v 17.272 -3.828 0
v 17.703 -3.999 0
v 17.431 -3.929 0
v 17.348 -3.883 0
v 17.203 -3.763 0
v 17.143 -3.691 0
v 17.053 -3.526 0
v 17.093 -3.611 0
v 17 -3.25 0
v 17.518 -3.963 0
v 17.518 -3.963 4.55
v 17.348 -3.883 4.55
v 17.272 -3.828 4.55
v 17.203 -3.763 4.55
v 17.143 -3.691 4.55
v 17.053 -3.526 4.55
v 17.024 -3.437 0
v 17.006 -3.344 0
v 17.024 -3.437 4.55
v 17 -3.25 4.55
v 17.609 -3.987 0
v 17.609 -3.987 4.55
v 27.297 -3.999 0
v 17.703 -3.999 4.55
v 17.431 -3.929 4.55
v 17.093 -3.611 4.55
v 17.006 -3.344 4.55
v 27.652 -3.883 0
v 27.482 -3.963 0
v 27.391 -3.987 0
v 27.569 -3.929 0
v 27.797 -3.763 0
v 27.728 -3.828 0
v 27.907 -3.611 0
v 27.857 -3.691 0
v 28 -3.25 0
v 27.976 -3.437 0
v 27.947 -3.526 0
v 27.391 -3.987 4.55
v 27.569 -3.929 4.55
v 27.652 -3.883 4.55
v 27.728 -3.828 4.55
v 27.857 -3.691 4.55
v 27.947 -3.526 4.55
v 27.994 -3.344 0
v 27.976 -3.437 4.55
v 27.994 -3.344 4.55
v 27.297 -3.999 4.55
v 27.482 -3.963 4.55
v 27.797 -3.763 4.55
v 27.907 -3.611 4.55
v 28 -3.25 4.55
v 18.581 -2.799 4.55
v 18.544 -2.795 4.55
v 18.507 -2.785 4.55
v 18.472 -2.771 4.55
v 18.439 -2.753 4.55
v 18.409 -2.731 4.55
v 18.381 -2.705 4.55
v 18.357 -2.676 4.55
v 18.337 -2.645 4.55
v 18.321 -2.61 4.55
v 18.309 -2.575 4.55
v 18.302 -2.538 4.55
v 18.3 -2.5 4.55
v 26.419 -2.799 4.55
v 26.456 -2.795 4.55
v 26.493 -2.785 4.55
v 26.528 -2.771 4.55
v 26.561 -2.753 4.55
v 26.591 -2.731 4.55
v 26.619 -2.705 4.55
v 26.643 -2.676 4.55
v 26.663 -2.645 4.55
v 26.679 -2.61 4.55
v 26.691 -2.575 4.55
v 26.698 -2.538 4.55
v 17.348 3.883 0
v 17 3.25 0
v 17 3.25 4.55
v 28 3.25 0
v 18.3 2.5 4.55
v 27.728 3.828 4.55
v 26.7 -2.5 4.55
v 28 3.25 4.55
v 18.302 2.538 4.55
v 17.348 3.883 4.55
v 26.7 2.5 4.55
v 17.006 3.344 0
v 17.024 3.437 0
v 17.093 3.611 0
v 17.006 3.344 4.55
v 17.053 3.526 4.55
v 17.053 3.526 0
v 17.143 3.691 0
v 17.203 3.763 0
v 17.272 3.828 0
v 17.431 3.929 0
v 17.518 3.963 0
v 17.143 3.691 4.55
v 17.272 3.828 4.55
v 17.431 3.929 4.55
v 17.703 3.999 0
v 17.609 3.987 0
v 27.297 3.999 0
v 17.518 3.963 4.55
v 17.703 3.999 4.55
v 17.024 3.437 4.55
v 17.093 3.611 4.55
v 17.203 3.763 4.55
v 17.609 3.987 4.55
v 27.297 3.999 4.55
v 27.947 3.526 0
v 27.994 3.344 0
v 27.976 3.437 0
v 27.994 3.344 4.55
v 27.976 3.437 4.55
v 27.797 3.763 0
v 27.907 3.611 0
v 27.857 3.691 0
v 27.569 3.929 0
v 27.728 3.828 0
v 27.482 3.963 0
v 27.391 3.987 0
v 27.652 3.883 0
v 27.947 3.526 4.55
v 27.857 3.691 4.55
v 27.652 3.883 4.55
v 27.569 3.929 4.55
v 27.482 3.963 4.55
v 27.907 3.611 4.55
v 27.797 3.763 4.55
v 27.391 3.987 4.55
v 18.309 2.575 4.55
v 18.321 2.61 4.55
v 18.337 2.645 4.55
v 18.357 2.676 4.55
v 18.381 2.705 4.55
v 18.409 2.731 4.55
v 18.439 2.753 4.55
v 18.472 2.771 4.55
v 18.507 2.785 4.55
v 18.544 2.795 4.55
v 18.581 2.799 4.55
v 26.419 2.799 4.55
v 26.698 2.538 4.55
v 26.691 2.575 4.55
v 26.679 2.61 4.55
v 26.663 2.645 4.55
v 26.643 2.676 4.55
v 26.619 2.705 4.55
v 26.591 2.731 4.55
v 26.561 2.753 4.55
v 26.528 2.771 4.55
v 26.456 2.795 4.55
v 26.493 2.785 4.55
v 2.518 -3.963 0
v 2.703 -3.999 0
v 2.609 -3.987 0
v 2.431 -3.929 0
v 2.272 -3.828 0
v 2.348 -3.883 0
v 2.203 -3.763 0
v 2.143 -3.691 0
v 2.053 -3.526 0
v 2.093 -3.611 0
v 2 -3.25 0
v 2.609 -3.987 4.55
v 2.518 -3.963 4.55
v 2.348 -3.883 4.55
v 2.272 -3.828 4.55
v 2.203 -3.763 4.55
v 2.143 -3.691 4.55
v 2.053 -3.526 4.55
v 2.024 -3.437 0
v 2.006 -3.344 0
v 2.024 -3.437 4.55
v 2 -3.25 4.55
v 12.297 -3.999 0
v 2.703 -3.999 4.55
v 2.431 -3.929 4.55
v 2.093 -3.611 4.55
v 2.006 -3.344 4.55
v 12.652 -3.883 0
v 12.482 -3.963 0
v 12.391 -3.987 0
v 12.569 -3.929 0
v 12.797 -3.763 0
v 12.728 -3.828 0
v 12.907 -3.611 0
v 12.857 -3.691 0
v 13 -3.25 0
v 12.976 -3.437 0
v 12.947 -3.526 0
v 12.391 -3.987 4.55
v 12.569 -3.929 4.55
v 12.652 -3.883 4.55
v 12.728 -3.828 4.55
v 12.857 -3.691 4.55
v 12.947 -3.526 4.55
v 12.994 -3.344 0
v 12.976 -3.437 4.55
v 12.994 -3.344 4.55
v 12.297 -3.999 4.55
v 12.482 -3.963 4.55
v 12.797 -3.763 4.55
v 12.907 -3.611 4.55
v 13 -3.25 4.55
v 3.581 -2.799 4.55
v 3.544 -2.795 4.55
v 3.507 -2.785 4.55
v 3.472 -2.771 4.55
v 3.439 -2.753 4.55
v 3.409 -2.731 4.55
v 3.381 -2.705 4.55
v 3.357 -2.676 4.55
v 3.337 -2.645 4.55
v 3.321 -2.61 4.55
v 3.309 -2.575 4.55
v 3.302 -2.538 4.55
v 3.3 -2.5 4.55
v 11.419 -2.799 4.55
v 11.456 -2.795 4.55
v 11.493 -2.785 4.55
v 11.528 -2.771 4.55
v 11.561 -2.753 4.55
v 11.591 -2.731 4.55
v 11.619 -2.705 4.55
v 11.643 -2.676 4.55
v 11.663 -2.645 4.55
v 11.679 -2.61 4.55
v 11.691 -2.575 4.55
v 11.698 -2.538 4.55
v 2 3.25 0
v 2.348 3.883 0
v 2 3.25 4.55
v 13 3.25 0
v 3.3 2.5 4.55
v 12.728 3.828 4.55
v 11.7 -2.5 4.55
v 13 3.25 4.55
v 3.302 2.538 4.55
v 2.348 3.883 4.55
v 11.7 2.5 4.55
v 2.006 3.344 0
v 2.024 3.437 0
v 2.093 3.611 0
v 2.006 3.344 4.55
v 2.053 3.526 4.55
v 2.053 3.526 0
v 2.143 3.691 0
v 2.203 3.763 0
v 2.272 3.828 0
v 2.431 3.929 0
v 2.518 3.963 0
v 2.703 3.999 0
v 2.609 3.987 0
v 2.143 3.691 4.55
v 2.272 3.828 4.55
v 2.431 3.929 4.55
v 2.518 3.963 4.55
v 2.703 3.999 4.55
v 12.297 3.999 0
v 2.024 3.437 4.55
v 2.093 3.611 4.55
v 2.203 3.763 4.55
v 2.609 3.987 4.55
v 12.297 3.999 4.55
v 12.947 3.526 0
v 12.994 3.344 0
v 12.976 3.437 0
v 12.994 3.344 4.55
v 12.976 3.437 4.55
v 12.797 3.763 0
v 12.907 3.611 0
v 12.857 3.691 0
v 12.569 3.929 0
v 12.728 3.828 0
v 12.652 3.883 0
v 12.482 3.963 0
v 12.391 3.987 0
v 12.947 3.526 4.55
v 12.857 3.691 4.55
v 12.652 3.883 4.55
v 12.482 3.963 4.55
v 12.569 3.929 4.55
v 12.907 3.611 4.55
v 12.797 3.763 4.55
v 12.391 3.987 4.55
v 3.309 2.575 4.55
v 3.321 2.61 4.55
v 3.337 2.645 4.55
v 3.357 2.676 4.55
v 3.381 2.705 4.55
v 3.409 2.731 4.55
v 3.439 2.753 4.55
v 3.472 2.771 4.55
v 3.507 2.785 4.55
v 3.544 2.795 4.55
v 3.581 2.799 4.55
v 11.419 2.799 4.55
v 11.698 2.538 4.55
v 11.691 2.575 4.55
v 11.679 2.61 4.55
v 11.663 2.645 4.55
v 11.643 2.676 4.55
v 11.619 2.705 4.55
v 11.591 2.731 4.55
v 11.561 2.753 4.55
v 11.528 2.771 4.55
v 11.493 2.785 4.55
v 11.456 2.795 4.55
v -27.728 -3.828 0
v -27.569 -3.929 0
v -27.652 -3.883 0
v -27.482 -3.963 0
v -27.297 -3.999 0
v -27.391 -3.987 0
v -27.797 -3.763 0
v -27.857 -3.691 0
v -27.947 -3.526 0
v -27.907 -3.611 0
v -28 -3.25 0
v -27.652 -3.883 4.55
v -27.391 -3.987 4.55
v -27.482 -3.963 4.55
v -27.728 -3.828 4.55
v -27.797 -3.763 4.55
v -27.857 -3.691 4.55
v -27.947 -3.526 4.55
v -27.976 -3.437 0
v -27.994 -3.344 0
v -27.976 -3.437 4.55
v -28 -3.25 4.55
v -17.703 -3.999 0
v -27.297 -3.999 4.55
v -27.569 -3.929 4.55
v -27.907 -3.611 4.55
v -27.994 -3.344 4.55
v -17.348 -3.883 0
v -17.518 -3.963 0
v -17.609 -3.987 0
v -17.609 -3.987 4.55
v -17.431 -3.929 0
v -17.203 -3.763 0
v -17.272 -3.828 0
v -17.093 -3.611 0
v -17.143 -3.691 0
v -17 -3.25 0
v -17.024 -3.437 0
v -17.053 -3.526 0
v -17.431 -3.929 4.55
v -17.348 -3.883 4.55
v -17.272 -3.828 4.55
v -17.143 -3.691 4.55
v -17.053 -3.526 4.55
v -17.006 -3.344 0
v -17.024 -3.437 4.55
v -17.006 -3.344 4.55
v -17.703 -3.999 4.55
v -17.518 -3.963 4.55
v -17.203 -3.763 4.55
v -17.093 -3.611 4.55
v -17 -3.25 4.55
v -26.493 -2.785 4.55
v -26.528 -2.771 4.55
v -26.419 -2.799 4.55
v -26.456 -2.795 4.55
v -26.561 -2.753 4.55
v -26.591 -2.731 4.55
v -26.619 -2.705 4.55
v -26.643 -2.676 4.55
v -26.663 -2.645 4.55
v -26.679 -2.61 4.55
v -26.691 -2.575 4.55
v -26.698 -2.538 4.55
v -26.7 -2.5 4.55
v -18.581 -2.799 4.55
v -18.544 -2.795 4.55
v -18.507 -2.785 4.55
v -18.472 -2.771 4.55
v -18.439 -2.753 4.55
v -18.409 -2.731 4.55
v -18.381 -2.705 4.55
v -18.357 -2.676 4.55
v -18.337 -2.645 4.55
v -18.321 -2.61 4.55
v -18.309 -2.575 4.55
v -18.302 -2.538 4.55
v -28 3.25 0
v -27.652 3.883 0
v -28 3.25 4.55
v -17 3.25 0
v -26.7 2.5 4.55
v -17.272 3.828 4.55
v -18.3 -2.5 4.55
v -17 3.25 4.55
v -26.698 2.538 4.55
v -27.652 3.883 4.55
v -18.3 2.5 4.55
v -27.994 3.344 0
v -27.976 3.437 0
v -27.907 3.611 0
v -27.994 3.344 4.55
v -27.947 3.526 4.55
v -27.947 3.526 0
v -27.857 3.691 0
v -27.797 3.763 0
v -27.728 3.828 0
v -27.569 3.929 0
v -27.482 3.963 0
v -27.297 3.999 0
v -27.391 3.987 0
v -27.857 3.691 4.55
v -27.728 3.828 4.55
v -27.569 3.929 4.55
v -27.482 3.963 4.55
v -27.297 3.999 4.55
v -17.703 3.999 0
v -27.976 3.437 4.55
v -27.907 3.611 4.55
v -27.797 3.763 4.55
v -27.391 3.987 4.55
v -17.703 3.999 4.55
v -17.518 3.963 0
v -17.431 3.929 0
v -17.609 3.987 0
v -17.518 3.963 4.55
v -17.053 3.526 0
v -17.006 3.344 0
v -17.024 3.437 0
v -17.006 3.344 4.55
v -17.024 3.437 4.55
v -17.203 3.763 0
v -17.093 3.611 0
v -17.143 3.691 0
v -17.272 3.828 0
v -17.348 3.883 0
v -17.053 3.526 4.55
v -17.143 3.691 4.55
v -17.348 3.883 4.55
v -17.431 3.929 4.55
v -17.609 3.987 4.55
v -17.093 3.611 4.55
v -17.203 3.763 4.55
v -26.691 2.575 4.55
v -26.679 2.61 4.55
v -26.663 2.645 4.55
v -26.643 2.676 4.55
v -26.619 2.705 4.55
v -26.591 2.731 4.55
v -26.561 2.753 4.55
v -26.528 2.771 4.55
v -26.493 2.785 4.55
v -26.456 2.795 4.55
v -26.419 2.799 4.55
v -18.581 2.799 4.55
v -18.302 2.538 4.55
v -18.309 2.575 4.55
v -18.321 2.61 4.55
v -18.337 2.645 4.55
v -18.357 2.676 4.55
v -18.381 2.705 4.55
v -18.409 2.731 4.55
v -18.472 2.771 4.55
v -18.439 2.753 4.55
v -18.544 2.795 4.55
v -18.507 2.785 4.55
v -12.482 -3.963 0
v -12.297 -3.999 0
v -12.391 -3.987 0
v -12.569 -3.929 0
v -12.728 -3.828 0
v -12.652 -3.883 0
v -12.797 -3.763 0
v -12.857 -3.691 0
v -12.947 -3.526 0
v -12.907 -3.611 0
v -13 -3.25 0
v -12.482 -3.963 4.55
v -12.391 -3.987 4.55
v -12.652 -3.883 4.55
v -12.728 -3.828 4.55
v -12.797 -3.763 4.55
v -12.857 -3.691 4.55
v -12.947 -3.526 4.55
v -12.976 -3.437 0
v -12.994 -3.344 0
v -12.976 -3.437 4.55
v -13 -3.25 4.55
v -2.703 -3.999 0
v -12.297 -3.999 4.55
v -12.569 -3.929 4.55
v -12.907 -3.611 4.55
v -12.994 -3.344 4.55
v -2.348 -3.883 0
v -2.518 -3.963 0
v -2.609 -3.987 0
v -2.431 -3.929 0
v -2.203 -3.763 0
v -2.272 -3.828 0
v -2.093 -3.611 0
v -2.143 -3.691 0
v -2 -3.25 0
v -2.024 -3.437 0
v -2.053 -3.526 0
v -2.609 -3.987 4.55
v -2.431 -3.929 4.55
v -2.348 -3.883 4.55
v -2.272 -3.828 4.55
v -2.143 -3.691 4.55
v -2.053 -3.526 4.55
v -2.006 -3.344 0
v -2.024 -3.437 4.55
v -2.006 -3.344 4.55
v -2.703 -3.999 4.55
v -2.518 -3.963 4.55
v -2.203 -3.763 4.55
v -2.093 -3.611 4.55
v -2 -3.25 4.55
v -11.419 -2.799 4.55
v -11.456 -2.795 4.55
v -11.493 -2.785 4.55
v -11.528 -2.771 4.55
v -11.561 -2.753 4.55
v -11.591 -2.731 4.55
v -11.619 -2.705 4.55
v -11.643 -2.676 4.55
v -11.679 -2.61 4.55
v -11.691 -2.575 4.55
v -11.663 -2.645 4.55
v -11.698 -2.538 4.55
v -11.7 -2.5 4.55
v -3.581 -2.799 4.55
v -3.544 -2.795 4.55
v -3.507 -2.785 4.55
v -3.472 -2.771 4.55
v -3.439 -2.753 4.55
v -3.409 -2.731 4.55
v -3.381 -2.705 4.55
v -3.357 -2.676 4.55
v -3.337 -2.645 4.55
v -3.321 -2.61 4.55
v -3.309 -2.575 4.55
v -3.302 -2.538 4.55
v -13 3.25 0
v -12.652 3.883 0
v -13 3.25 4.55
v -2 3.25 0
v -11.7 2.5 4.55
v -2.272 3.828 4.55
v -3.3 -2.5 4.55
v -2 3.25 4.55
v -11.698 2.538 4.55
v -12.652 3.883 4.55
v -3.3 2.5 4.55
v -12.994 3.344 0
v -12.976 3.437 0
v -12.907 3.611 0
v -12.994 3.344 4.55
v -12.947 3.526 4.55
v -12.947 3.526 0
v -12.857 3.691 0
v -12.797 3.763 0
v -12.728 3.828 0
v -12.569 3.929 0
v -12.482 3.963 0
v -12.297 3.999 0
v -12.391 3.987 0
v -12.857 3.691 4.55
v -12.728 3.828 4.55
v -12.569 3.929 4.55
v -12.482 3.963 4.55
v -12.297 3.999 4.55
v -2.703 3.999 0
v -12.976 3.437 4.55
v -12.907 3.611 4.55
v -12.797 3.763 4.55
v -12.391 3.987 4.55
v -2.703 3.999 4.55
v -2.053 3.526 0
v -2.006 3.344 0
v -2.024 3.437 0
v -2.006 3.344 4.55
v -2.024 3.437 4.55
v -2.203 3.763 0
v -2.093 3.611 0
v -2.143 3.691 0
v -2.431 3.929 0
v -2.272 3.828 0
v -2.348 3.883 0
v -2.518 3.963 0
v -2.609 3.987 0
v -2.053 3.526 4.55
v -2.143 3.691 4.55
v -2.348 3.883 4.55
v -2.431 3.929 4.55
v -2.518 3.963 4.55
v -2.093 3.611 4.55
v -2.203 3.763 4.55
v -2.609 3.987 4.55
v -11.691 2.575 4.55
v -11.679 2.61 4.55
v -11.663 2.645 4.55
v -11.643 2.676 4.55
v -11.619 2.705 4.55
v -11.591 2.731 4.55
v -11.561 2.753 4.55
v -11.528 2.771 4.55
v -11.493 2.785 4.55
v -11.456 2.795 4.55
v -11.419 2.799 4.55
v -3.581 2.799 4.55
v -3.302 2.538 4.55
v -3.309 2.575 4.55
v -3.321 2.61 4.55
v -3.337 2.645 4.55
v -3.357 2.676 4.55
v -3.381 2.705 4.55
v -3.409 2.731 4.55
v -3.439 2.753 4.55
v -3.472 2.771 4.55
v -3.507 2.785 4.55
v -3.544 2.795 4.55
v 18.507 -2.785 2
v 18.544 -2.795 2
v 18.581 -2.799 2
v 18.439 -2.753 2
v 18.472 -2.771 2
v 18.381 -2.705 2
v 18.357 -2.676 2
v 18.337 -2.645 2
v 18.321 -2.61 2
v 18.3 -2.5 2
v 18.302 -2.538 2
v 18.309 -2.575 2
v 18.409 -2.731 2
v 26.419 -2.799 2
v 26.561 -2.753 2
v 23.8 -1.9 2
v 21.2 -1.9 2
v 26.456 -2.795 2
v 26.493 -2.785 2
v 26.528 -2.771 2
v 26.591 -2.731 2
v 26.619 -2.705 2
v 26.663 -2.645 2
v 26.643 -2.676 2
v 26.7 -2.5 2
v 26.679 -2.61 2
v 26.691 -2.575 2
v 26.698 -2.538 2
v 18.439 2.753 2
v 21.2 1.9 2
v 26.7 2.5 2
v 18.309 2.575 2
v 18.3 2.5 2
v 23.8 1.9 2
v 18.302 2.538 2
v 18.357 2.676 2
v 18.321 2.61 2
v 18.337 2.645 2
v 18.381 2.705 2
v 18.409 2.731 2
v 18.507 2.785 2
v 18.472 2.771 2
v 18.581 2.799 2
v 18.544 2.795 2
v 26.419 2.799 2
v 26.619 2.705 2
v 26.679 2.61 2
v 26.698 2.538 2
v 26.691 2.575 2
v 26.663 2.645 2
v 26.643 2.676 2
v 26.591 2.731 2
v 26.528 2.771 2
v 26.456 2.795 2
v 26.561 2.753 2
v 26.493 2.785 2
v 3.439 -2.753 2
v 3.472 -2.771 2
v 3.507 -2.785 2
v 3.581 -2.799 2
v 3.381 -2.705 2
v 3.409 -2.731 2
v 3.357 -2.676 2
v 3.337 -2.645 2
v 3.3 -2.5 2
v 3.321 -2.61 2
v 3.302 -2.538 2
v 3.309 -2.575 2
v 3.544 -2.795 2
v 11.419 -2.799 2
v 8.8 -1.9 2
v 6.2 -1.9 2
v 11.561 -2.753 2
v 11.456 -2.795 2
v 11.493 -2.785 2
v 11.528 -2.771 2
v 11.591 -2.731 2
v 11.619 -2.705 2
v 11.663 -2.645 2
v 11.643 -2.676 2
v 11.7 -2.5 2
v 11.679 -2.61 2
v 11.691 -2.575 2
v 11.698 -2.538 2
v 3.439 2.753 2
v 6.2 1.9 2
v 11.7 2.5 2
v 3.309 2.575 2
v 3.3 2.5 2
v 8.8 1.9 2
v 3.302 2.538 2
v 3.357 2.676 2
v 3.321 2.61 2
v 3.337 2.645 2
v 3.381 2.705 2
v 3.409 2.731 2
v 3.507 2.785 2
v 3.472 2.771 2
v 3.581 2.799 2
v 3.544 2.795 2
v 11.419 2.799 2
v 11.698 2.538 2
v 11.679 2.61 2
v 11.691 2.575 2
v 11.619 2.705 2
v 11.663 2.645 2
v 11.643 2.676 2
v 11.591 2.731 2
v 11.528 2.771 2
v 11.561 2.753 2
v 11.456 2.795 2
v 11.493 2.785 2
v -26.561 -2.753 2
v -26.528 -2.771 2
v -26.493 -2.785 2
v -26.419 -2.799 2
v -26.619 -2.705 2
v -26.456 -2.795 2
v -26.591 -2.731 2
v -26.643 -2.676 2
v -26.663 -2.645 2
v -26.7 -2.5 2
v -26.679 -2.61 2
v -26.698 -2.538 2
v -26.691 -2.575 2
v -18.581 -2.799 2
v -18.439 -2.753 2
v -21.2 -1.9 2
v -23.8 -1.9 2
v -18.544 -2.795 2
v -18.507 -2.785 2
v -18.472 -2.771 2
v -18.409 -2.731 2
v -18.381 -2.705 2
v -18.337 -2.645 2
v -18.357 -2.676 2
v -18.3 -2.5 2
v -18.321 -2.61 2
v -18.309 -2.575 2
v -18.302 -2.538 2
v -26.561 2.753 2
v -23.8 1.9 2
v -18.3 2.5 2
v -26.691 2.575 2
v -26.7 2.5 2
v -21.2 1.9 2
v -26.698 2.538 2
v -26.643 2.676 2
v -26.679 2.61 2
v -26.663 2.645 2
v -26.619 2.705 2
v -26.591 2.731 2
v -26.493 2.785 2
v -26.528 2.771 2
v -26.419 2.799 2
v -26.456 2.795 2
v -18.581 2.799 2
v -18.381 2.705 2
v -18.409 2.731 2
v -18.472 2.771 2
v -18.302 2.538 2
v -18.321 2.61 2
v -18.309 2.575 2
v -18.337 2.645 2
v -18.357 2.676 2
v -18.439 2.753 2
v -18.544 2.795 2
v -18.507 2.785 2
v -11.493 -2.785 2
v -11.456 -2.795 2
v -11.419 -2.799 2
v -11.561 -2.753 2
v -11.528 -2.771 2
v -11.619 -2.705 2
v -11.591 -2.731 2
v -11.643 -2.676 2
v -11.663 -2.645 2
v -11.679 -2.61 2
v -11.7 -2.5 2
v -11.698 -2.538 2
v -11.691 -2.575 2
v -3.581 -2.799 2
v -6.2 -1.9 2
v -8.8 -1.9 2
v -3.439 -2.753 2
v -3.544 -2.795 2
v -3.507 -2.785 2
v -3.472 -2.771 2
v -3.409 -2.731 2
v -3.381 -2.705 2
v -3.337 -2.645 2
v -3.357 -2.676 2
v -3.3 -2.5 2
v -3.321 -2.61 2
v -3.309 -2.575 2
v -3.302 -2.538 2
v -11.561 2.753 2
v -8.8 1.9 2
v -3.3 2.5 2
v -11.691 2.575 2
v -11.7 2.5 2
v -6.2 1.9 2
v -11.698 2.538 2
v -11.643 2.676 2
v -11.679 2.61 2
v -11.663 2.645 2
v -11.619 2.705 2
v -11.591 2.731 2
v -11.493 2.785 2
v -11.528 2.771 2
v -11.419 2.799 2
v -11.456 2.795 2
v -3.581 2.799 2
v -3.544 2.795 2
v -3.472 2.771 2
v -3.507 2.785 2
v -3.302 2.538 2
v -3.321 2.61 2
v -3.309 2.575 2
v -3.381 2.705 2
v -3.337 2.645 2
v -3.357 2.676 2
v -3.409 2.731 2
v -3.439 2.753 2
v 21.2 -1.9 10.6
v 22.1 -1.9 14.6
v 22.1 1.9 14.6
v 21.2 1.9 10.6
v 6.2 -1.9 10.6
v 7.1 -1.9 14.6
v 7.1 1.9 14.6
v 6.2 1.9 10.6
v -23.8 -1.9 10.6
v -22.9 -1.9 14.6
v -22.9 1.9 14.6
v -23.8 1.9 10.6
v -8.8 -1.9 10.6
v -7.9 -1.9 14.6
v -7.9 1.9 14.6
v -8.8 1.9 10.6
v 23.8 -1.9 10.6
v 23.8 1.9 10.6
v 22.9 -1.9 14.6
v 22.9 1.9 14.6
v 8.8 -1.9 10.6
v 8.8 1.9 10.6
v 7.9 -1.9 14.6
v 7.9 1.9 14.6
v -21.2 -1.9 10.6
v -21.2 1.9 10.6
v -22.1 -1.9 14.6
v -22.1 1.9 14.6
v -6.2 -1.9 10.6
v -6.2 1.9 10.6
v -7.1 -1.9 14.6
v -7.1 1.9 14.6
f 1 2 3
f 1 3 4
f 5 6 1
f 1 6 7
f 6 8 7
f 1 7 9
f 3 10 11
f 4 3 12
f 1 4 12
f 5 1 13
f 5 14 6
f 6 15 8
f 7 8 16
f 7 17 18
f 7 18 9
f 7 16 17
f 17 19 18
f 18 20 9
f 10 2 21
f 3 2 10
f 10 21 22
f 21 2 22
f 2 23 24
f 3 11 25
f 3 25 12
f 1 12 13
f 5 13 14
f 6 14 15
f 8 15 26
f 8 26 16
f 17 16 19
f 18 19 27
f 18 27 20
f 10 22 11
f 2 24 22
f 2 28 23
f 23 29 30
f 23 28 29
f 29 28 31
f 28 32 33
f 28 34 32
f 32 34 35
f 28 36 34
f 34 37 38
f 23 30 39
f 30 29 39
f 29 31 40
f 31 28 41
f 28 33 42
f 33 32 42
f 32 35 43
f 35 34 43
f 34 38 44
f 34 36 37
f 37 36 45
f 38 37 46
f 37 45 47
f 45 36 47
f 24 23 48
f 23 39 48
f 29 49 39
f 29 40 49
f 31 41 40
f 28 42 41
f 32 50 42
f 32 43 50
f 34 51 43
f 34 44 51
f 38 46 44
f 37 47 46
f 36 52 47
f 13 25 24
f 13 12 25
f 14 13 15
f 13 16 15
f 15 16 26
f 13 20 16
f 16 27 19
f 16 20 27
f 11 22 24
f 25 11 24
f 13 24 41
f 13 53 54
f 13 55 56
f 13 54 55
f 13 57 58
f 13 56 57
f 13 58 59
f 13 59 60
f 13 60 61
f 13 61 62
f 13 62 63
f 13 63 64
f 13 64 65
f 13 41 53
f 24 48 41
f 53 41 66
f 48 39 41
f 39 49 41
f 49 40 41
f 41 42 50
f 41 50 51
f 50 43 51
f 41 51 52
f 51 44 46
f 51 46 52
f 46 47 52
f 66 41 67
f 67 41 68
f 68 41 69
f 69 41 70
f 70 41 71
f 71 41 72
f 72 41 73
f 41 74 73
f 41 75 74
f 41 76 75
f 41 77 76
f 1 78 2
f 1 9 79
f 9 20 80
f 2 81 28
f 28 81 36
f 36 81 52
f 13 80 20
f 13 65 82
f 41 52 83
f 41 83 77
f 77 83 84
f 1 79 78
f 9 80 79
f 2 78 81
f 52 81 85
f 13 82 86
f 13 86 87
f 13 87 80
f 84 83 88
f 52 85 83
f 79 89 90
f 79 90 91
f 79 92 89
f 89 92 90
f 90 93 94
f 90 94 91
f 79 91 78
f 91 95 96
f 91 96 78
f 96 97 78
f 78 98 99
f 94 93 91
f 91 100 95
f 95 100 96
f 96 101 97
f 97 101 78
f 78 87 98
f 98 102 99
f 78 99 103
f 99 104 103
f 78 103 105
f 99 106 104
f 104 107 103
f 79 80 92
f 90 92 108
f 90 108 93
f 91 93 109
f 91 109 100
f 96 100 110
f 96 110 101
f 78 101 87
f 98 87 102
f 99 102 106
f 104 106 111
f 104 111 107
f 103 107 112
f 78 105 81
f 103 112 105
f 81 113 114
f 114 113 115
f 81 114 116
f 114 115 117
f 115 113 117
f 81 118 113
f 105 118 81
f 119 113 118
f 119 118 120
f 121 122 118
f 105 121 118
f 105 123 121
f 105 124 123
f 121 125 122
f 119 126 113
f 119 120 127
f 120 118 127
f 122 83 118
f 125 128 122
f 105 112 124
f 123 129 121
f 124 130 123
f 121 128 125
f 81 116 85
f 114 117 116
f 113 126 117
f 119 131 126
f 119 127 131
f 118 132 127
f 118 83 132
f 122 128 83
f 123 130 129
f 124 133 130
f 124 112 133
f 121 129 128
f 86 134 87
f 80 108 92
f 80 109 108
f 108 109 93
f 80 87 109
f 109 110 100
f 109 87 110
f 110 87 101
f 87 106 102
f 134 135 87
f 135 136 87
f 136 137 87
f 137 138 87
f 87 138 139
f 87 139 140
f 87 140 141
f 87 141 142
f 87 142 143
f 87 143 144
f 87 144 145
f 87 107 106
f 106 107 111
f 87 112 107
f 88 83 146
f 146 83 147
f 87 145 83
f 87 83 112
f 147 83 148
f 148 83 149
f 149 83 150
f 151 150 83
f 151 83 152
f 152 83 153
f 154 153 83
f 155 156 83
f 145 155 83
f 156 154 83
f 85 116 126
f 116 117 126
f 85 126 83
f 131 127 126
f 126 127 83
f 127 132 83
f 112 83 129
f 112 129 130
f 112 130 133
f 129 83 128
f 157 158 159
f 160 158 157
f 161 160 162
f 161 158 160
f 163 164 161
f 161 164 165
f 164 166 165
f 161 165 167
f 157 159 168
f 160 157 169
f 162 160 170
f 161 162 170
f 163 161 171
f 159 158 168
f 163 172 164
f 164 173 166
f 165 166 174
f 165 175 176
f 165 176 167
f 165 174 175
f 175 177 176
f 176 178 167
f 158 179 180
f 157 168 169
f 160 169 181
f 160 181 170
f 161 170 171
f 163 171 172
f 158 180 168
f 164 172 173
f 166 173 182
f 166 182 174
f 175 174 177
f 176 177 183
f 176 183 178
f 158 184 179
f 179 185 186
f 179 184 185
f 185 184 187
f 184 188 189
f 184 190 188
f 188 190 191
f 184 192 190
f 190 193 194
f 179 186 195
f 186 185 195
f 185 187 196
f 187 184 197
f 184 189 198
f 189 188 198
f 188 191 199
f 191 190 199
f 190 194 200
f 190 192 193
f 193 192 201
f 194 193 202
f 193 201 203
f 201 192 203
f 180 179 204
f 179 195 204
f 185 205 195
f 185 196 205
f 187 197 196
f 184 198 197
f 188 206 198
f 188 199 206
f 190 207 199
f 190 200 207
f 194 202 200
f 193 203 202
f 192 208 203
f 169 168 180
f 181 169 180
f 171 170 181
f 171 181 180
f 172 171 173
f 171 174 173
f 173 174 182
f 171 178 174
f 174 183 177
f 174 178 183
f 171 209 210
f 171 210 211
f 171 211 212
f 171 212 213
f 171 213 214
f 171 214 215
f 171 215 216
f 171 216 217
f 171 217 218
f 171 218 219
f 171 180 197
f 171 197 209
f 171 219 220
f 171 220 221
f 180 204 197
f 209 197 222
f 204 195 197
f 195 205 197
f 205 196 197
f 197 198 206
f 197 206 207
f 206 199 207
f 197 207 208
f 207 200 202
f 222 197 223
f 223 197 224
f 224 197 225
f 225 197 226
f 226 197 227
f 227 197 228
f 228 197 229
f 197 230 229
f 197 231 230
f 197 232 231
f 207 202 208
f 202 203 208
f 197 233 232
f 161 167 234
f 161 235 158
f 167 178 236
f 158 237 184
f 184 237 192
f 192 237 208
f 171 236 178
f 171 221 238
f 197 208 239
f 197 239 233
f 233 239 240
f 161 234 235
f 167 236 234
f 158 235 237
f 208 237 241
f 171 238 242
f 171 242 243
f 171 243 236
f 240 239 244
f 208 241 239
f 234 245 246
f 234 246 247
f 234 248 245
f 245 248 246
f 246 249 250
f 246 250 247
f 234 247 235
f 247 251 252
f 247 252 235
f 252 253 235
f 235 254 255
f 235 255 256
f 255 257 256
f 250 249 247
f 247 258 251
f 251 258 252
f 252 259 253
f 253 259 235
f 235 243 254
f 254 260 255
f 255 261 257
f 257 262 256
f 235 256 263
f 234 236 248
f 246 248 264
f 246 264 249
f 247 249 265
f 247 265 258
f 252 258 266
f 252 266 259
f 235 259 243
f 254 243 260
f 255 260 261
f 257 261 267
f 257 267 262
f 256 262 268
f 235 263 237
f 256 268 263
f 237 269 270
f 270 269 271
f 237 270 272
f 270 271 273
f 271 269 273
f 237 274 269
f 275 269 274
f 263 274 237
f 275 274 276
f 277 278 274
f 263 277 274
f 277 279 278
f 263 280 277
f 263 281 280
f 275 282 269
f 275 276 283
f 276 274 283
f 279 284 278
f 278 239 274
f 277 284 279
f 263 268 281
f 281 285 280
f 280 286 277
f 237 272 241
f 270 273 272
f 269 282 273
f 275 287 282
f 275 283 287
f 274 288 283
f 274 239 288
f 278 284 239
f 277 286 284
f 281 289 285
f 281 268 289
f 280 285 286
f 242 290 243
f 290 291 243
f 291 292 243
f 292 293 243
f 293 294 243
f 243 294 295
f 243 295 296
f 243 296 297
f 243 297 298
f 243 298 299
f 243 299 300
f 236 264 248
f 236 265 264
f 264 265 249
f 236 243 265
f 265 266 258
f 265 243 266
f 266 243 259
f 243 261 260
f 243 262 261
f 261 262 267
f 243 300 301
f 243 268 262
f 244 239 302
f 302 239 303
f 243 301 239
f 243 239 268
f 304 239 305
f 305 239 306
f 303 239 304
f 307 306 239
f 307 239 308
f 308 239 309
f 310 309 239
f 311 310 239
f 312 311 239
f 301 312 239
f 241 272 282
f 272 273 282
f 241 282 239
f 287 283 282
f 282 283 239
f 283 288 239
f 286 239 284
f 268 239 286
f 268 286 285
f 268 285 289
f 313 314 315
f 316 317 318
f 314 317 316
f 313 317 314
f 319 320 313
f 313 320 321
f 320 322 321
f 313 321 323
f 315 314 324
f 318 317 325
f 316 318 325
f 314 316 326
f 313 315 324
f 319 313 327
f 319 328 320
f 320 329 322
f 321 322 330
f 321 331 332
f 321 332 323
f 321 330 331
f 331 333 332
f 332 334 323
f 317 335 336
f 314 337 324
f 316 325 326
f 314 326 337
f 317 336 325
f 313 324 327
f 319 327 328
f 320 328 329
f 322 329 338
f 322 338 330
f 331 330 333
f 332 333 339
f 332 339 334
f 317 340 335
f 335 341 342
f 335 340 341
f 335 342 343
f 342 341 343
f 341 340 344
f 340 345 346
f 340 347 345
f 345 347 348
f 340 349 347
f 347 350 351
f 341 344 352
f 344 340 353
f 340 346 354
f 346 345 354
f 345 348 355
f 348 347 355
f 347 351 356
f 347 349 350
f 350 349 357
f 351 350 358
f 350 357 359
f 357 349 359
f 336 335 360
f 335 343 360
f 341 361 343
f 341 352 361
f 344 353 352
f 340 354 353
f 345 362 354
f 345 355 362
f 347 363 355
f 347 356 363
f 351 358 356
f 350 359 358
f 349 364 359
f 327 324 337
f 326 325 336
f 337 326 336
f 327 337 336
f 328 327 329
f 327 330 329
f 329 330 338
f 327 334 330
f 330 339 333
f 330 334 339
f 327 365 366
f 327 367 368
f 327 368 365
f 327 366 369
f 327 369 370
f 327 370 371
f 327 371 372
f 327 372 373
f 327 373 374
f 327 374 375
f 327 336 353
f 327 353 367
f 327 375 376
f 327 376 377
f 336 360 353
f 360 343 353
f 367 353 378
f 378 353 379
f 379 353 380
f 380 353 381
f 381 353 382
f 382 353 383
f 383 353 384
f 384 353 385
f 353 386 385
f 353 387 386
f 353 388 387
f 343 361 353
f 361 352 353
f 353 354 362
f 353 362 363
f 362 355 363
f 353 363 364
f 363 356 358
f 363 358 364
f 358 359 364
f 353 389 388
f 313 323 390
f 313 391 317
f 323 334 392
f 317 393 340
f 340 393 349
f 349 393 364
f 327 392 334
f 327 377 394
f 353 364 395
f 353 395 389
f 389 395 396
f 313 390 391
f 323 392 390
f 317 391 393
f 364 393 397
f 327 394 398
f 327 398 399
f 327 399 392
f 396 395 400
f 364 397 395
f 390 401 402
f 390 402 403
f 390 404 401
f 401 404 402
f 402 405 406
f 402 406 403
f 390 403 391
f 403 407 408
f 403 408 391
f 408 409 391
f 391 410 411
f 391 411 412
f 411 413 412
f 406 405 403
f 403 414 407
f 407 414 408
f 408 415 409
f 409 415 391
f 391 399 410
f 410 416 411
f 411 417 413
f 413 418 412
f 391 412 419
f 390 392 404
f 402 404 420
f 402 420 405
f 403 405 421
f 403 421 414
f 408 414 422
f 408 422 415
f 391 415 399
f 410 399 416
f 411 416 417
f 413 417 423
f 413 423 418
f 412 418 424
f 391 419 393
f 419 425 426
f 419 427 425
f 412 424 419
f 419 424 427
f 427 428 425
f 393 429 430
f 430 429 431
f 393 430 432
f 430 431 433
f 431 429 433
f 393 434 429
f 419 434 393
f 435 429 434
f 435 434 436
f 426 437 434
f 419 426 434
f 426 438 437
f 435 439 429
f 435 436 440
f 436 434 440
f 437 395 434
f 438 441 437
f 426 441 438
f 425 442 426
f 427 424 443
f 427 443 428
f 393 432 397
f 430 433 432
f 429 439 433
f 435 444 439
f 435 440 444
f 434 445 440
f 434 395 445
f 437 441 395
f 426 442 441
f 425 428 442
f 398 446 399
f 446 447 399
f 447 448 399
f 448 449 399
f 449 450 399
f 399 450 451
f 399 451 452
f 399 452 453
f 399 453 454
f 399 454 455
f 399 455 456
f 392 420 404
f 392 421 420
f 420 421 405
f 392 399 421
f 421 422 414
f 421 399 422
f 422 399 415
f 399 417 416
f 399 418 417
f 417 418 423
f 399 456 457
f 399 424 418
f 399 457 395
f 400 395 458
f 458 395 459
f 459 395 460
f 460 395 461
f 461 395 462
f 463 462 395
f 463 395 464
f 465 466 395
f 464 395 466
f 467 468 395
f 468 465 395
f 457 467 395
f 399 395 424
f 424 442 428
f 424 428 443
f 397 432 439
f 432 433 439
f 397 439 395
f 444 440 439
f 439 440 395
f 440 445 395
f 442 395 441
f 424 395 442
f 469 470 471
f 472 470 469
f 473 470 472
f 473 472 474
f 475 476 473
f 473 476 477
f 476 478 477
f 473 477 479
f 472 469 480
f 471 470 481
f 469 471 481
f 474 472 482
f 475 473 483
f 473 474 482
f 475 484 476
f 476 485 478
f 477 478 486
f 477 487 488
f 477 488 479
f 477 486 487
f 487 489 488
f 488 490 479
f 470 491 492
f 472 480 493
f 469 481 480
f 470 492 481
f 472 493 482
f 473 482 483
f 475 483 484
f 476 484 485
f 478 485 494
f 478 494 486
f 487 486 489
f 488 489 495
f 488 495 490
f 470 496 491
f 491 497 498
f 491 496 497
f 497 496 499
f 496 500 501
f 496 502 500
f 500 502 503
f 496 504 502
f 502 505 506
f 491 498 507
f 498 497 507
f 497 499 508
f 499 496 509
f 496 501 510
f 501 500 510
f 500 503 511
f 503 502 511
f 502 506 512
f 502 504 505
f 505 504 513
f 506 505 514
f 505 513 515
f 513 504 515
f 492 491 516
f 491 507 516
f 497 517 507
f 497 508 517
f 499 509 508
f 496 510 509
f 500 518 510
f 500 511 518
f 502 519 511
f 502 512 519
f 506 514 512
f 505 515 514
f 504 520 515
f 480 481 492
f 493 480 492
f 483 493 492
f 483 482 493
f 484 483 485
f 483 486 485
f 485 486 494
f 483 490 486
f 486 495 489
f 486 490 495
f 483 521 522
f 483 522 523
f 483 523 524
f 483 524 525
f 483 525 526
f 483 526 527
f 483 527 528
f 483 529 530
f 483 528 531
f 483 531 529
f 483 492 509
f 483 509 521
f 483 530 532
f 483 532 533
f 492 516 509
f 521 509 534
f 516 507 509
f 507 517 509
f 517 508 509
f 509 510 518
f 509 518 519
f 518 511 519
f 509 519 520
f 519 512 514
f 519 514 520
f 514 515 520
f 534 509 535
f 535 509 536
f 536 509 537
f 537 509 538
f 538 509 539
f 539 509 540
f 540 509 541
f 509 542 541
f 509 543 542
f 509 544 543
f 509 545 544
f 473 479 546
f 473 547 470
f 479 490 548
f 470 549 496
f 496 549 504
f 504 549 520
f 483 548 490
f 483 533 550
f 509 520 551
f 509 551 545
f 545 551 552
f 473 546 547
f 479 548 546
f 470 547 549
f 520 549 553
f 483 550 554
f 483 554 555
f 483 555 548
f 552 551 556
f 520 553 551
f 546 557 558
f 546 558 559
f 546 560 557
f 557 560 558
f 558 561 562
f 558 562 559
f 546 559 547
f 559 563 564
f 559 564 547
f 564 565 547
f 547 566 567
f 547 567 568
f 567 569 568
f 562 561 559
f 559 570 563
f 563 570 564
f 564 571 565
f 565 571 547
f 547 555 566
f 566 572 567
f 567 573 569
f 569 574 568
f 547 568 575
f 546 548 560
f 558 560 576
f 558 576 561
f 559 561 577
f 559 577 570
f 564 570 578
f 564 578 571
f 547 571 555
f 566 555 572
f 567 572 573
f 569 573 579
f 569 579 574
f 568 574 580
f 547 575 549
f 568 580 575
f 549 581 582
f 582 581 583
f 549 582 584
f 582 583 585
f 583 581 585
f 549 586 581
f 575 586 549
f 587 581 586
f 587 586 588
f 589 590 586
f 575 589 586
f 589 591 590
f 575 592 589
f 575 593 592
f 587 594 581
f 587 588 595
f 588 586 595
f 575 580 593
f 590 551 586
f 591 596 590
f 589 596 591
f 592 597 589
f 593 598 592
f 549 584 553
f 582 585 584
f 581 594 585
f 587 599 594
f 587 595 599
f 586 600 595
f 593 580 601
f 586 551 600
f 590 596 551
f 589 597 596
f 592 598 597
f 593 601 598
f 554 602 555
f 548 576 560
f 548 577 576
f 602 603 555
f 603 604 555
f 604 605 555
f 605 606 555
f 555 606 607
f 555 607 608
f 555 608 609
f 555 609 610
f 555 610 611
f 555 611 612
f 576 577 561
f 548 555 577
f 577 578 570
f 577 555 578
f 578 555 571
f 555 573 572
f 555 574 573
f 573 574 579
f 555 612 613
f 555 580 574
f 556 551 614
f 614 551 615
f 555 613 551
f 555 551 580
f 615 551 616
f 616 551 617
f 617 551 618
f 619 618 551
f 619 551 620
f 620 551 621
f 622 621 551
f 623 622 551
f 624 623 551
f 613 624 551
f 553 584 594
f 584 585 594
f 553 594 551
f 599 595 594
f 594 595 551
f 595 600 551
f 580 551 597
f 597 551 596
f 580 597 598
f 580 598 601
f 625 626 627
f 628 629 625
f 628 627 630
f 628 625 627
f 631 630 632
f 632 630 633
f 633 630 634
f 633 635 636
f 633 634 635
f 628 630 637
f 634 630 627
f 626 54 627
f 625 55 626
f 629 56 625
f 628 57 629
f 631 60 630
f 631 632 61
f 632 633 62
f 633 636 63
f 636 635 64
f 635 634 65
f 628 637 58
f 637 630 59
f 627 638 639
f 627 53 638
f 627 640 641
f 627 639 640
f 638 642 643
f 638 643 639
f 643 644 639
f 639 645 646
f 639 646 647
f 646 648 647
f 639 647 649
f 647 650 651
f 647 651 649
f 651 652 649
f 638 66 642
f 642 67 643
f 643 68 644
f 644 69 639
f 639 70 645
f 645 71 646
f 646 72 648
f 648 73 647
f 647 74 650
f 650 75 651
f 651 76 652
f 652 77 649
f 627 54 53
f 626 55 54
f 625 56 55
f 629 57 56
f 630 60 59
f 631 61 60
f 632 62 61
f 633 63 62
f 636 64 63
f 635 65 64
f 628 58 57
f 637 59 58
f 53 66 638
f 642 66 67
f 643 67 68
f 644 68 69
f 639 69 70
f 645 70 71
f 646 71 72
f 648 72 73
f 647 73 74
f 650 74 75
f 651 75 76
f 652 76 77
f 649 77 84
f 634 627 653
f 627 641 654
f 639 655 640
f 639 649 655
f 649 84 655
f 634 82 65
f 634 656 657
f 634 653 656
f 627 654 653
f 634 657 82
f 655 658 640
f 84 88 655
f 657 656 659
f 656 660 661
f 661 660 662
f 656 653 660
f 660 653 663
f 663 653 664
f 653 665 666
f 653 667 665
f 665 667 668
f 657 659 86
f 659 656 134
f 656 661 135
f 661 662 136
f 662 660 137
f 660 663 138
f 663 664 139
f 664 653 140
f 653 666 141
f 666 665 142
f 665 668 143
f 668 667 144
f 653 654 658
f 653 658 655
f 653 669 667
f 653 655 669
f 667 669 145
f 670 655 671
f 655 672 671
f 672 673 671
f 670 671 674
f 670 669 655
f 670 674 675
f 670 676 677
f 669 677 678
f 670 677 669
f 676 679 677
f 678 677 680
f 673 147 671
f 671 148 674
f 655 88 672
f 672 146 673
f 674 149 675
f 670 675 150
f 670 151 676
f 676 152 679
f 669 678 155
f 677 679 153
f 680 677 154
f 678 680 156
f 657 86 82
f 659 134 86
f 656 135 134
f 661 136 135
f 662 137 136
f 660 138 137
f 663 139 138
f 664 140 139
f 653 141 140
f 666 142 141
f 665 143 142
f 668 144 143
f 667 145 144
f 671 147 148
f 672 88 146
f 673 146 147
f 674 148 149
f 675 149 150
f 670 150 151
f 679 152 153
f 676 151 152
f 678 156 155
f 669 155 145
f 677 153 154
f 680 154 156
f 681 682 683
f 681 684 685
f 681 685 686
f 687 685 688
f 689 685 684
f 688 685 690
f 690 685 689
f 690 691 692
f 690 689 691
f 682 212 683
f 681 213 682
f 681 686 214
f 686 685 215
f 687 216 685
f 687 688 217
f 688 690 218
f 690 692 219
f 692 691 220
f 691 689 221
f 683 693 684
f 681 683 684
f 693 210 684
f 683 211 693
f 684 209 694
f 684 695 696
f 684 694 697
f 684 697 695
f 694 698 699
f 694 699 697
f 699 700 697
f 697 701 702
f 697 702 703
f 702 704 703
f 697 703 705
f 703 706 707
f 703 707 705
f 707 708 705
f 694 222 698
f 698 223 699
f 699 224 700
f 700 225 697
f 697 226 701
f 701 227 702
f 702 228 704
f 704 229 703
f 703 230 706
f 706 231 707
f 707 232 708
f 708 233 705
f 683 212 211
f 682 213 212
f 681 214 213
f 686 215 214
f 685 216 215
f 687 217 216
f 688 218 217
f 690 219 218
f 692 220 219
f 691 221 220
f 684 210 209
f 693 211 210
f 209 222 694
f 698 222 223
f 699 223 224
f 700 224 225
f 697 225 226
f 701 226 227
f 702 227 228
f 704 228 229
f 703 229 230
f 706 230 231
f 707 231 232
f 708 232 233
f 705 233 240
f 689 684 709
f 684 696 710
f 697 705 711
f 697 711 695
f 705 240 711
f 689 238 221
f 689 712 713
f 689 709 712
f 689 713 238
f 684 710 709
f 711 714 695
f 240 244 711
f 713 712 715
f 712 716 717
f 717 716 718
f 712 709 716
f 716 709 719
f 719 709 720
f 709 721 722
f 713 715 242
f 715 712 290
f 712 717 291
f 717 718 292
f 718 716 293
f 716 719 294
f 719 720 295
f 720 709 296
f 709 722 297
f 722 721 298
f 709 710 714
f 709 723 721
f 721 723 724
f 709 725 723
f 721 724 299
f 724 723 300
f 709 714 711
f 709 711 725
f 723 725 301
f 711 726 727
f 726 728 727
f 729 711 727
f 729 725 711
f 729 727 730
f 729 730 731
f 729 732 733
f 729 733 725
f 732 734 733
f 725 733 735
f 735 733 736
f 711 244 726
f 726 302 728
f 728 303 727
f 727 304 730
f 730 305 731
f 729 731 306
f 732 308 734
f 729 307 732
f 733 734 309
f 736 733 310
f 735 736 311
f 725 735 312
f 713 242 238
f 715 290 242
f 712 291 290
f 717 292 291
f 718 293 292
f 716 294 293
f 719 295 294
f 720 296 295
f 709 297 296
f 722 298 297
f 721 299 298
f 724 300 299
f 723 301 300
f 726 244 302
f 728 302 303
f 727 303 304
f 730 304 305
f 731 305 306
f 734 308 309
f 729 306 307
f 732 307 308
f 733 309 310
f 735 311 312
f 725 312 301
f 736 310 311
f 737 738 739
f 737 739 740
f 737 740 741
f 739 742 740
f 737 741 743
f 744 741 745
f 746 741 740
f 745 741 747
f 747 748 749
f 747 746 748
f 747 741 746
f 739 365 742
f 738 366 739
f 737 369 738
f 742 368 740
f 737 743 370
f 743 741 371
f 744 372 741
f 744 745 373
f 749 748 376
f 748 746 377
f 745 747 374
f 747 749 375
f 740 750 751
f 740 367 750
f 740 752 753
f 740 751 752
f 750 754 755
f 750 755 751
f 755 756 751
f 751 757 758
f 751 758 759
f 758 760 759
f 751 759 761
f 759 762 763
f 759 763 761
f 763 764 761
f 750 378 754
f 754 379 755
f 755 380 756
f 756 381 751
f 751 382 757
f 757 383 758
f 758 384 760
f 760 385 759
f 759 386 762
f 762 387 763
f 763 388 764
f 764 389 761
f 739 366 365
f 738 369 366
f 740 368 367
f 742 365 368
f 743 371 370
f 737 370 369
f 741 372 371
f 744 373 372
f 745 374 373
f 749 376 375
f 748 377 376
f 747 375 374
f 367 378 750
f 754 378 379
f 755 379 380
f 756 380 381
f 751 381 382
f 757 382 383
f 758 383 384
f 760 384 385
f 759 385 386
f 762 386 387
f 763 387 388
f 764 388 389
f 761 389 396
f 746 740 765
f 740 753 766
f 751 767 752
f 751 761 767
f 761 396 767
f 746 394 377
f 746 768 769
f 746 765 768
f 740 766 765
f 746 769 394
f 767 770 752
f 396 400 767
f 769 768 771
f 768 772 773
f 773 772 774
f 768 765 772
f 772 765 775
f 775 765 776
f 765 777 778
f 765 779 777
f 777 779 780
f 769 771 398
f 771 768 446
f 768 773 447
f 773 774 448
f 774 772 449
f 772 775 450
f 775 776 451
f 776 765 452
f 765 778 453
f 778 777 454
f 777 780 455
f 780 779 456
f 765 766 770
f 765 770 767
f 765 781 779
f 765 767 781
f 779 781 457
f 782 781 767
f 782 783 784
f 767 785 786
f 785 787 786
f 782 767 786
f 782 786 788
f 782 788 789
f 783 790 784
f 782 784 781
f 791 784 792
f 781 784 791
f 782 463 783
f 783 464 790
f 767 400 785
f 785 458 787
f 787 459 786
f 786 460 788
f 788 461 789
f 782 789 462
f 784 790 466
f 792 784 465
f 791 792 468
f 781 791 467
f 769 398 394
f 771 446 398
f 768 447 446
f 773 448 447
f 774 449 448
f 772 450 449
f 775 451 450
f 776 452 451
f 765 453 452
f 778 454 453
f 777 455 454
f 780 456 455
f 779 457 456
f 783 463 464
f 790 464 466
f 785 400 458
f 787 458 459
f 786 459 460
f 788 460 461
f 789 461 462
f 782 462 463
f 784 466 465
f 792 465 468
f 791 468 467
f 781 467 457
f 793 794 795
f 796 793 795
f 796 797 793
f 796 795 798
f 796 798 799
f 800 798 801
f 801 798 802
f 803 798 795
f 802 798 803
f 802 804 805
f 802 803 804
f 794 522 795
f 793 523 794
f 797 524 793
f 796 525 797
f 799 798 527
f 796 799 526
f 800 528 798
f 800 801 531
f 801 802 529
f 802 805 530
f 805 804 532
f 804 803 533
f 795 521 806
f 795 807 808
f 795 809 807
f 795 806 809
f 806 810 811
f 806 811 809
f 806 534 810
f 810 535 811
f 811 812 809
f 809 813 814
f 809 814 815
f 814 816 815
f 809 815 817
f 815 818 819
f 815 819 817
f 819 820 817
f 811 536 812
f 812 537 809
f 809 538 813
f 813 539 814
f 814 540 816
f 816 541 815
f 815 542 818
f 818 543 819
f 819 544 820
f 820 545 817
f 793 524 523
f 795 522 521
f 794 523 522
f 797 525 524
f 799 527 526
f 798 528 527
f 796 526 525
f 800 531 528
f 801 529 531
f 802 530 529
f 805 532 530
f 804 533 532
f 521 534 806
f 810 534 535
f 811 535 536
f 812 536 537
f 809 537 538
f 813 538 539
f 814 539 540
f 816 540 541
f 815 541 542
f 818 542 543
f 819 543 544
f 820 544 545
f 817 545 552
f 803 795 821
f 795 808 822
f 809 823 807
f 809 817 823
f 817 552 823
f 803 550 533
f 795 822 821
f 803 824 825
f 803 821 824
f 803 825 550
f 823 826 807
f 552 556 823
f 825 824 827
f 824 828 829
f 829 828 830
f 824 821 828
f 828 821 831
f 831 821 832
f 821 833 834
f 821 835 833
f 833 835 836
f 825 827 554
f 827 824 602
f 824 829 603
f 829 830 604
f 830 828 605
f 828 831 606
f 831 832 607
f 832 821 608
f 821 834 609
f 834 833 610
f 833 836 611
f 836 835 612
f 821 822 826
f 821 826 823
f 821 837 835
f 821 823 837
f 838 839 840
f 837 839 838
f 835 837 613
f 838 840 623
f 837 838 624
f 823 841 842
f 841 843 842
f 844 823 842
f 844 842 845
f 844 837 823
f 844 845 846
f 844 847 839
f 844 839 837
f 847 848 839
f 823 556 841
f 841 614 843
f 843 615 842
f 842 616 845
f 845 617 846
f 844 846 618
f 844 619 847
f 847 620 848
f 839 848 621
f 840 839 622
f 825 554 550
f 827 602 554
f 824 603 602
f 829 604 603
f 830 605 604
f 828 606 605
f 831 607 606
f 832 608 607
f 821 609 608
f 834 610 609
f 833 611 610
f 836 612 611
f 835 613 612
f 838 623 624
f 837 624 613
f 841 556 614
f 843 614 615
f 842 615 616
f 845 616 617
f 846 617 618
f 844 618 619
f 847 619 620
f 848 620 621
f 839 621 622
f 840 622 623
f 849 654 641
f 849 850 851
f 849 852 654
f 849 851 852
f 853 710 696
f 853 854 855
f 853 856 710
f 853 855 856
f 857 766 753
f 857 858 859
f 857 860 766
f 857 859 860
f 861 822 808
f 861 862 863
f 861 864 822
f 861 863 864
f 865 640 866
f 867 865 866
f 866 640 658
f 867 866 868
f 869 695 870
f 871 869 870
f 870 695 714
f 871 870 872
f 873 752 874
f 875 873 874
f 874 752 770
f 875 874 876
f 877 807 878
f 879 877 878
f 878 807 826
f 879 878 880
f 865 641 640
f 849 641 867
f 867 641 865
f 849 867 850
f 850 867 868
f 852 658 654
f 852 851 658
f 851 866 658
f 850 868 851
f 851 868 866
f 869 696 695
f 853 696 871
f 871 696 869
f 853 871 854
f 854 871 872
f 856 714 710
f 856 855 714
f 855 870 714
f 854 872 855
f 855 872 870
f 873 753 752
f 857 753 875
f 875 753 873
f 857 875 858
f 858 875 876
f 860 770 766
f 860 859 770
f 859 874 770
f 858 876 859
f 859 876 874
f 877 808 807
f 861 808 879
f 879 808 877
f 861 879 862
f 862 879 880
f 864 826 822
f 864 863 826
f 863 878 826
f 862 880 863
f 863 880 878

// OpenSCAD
$fn = 50;

difference() {
	union() {
		translate(v = [-22.5, 0, 0]) {
			rotate(a = [0, 0, 0]) {
				difference() {
					union() {
						translate(v = [0, 0, 0]) {
							rotate(a = [0, 0, 0]) {
								difference() {
									union() {
										translate(v = [0, 0, 0]) {
											rotate(a = [0, 0, 0]) {
												difference() {
													union() {
														hull() {
															translate(v = [-4.75, 3.25, 0]) {
																cylinder(h = 4.55, r = 0.75);
															}
															translate(v = [4.75, 3.25, 0]) {
																cylinder(h = 4.55, r = 0.75);
															}
															translate(v = [-4.75, -3.25, 0]) {
																cylinder(h = 4.55, r = 0.75);
															}
															translate(v = [4.75, -3.25, 0]) {
																cylinder(h = 4.55, r = 0.75);
															}
														}
													}
													union() {
														translate(v = [0, 0, 2.0]) {
															hull() {
																translate(v = [-3.9000000000000004, 2.5, 0]) {
																	cylinder(h = 2.65, r = 0.3);
																}
																translate(v = [3.9000000000000004, 2.5, 0]) {
																	cylinder(h = 2.65, r = 0.3);
																}
																translate(v = [-3.9000000000000004, -2.5, 0]) {
																	cylinder(h = 2.65, r = 0.3);
																}
																translate(v = [3.9000000000000004, -2.5, 0]) {
																	cylinder(h = 2.65, r = 0.3);
																}
															}
														}
													}
												}
											}
										}
										translate(v = [0, 0, 0]) {
											rotate(a = [0, 0, 0]) {
												difference() {
													union() {
														translate(v = [-1.4000000000000001, -1.9, 1.95]) {
															cube(size = [2.8000000000000003, 3.8, 12.65]);
														}
													}
													union() {
														translate(v = [0, 2.0, 0]) {
															rotate(a = [90, 0, 0]) {
																linear_extrude(height = 4.0) {
																	polygon(points = [[-1.3, 1.85], [-1.3, 10.6], [-0.4, 14.6], [-0.4, 14.799999999999999], [-1.6, 14.799999999999999], [-1.6, 1.85]]);
																}
															}
														}
														translate(v = [0, 2.0, 0]) {
															rotate(a = [90, 0, 0]) {
																linear_extrude(height = 4.0) {
																	polygon(points = [[1.3, 1.85], [1.3, 10.6], [0.4, 14.6], [0.4, 14.799999999999999], [1.6, 14.799999999999999], [1.6, 1.85]]);
																}
															}
														}
													}
												}
											}
										}
									}
									union();
								}
							}
						}
					}
					union();
				}
			}
		}
		translate(v = [-7.5, 0, 0]) {
			rotate(a = [0, 0, 0]) {
				difference() {
					union() {
						translate(v = [0, 0, 0]) {
							rotate(a = [0, 0, 0]) {
								difference() {
									union() {
										translate(v = [0, 0, 0]) {
											rotate(a = [0, 0, 0]) {
												difference() {
													union() {
														hull() {
															translate(v = [-4.75, 3.25, 0]) {
																cylinder(h = 4.55, r = 0.75);
															}
															translate(v = [4.75, 3.25, 0]) {
																cylinder(h = 4.55, r = 0.75);
															}
															translate(v = [-4.75, -3.25, 0]) {
																cylinder(h = 4.55, r = 0.75);
															}
															translate(v = [4.75, -3.25, 0]) {
																cylinder(h = 4.55, r = 0.75);
															}
														}
													}
													union() {
														translate(v = [0, 0, 2.0]) {
															hull() {
																translate(v = [-3.9000000000000004, 2.5, 0]) {
																	cylinder(h = 2.65, r = 0.3);
																}
																translate(v = [3.9000000000000004, 2.5, 0]) {
																	cylinder(h = 2.65, r = 0.3);
																}
																translate(v = [-3.9000000000000004, -2.5, 0]) {
																	cylinder(h = 2.65, r = 0.3);
																}
																translate(v = [3.9000000000000004, -2.5, 0]) {
																	cylinder(h = 2.65, r = 0.3);
																}
															}
														}
													}
												}
											}
										}
										translate(v = [0, 0, 0]) {
											rotate(a = [0, 0, 0]) {
												difference() {
													union() {
														translate(v = [-1.4000000000000001, -1.9, 1.95]) {
															cube(size = [2.8000000000000003, 3.8, 12.65]);
														}
													}
													union() {
														translate(v = [0, 2.0, 0]) {
															rotate(a = [90, 0, 0]) {
																linear_extrude(height = 4.0) {
																	polygon(points = [[-1.3, 1.85], [-1.3, 10.6], [-0.4, 14.6], [-0.4, 14.799999999999999], [-1.6, 14.799999999999999], [-1.6, 1.85]]);
																}
															}
														}
														translate(v = [0, 2.0, 0]) {
															rotate(a = [90, 0, 0]) {
																linear_extrude(height = 4.0) {
																	polygon(points = [[1.3, 1.85], [1.3, 10.6], [0.4, 14.6], [0.4, 14.799999999999999], [1.6, 14.799999999999999], [1.6, 1.85]]);
																}
															}
														}
													}
												}
											}
										}
									}
									union();
								}
							}
						}
					}
					union();
				}
			}
		}
		translate(v = [7.5, 0, 0]) {
			rotate(a = [0, 0, 0]) {
				difference() {
					union() {
						translate(v = [0, 0, 0]) {
							rotate(a = [0, 0, 0]) {
								difference() {
									union() {
										translate(v = [0, 0, 0]) {
											rotate(a = [0, 0, 0]) {
												difference() {
													union() {
														hull() {
															translate(v = [-4.75, 3.25, 0]) {
																cylinder(h = 4.55, r = 0.75);
															}
															translate(v = [4.75, 3.25, 0]) {
																cylinder(h = 4.55, r = 0.75);
															}
															translate(v = [-4.75, -3.25, 0]) {
																cylinder(h = 4.55, r = 0.75);
															}
															translate(v = [4.75, -3.25, 0]) {
																cylinder(h = 4.55, r = 0.75);
															}
														}
													}
													union() {
														translate(v = [0, 0, 2.0]) {
															hull() {
																translate(v = [-3.9000000000000004, 2.5, 0]) {
																	cylinder(h = 2.65, r = 0.3);
																}
																translate(v = [3.9000000000000004, 2.5, 0]) {
																	cylinder(h = 2.65, r = 0.3);
																}
																translate(v = [-3.9000000000000004, -2.5, 0]) {
																	cylinder(h = 2.65, r = 0.3);
																}
																translate(v = [3.9000000000000004, -2.5, 0]) {
																	cylinder(h = 2.65, r = 0.3);
																}
															}
														}
													}
												}
											}
										}
										translate(v = [0, 0, 0]) {
											rotate(a = [0, 0, 0]) {
												difference() {
													union() {
														translate(v = [-1.4000000000000001, -1.9, 1.95]) {
															cube(size = [2.8000000000000003, 3.8, 12.65]);
														}
													}
													union() {
														translate(v = [0, 2.0, 0]) {
															rotate(a = [90, 0, 0]) {
																linear_extrude(height = 4.0) {
																	polygon(points = [[-1.3, 1.85], [-1.3, 10.6], [-0.4, 14.6], [-0.4, 14.799999999999999], [-1.6, 14.799999999999999], [-1.6, 1.85]]);
																}
															}
														}
														translate(v = [0, 2.0, 0]) {
															rotate(a = [90, 0, 0]) {
																linear_extrude(height = 4.0) {
																	polygon(points = [[1.3, 1.85], [1.3, 10.6], [0.4, 14.6], [0.4, 14.799999999999999], [1.6, 14.799999999999999], [1.6, 1.85]]);
																}
															}
														}
													}
												}
											}
										}
									}
									union();
								}
							}
						}
					}
					union();
				}
			}
		}
		translate(v = [22.5, 0, 0]) {
			rotate(a = [0, 0, 0]) {
				difference() {
					union() {
						translate(v = [0, 0, 0]) {
							rotate(a = [0, 0, 0]) {
								difference() {
									union() {
										translate(v = [0, 0, 0]) {
											rotate(a = [0, 0, 0]) {
												difference() {
													union() {
														hull() {
															translate(v = [-4.75, 3.25, 0]) {
																cylinder(h = 4.55, r = 0.75);
															}
															translate(v = [4.75, 3.25, 0]) {
																cylinder(h = 4.55, r = 0.75);
															}
															translate(v = [-4.75, -3.25, 0]) {
																cylinder(h = 4.55, r = 0.75);
															}
															translate(v = [4.75, -3.25, 0]) {
																cylinder(h = 4.55, r = 0.75);
															}
														}
													}
													union() {
														translate(v = [0, 0, 2.0]) {
															hull() {
																translate(v = [-3.9000000000000004, 2.5, 0]) {
																	cylinder(h = 2.65, r = 0.3);
																}
																translate(v = [3.9000000000000004, 2.5, 0]) {
																	cylinder(h = 2.65, r = 0.3);
																}
																translate(v = [-3.9000000000000004, -2.5, 0]) {
																	cylinder(h = 2.65, r = 0.3);
																}
																translate(v = [3.9000000000000004, -2.5, 0]) {
																	cylinder(h = 2.65, r = 0.3);
																}
															}
														}
													}
												}
											}
										}
										translate(v = [0, 0, 0]) {
											rotate(a = [0, 0, 0]) {
												difference() {
													union() {
														translate(v = [-1.4000000000000001, -1.9, 1.95]) {
															cube(size = [2.8000000000000003, 3.8, 12.65]);
														}
													}
													union() {
														translate(v = [0, 2.0, 0]) {
															rotate(a = [90, 0, 0]) {
																linear_extrude(height = 4.0) {
																	polygon(points = [[-1.3, 1.85], [-1.3, 10.6], [-0.4, 14.6], [-0.4, 14.799999999999999], [-1.6, 14.799999999999999], [-1.6, 1.85]]);
																}
															}
														}
														translate(v = [0, 2.0, 0]) {
															rotate(a = [90, 0, 0]) {
																linear_extrude(height = 4.0) {
																	polygon(points = [[1.3, 1.85], [1.3, 10.6], [0.4, 14.6], [0.4, 14.799999999999999], [1.6, 14.799999999999999], [1.6, 1.85]]);
																}
															}
														}
													}
												}
											}
										}
									}
									union();
								}
							}
						}
					}
					union();
				}
			}
		}
	}
	union();
}
